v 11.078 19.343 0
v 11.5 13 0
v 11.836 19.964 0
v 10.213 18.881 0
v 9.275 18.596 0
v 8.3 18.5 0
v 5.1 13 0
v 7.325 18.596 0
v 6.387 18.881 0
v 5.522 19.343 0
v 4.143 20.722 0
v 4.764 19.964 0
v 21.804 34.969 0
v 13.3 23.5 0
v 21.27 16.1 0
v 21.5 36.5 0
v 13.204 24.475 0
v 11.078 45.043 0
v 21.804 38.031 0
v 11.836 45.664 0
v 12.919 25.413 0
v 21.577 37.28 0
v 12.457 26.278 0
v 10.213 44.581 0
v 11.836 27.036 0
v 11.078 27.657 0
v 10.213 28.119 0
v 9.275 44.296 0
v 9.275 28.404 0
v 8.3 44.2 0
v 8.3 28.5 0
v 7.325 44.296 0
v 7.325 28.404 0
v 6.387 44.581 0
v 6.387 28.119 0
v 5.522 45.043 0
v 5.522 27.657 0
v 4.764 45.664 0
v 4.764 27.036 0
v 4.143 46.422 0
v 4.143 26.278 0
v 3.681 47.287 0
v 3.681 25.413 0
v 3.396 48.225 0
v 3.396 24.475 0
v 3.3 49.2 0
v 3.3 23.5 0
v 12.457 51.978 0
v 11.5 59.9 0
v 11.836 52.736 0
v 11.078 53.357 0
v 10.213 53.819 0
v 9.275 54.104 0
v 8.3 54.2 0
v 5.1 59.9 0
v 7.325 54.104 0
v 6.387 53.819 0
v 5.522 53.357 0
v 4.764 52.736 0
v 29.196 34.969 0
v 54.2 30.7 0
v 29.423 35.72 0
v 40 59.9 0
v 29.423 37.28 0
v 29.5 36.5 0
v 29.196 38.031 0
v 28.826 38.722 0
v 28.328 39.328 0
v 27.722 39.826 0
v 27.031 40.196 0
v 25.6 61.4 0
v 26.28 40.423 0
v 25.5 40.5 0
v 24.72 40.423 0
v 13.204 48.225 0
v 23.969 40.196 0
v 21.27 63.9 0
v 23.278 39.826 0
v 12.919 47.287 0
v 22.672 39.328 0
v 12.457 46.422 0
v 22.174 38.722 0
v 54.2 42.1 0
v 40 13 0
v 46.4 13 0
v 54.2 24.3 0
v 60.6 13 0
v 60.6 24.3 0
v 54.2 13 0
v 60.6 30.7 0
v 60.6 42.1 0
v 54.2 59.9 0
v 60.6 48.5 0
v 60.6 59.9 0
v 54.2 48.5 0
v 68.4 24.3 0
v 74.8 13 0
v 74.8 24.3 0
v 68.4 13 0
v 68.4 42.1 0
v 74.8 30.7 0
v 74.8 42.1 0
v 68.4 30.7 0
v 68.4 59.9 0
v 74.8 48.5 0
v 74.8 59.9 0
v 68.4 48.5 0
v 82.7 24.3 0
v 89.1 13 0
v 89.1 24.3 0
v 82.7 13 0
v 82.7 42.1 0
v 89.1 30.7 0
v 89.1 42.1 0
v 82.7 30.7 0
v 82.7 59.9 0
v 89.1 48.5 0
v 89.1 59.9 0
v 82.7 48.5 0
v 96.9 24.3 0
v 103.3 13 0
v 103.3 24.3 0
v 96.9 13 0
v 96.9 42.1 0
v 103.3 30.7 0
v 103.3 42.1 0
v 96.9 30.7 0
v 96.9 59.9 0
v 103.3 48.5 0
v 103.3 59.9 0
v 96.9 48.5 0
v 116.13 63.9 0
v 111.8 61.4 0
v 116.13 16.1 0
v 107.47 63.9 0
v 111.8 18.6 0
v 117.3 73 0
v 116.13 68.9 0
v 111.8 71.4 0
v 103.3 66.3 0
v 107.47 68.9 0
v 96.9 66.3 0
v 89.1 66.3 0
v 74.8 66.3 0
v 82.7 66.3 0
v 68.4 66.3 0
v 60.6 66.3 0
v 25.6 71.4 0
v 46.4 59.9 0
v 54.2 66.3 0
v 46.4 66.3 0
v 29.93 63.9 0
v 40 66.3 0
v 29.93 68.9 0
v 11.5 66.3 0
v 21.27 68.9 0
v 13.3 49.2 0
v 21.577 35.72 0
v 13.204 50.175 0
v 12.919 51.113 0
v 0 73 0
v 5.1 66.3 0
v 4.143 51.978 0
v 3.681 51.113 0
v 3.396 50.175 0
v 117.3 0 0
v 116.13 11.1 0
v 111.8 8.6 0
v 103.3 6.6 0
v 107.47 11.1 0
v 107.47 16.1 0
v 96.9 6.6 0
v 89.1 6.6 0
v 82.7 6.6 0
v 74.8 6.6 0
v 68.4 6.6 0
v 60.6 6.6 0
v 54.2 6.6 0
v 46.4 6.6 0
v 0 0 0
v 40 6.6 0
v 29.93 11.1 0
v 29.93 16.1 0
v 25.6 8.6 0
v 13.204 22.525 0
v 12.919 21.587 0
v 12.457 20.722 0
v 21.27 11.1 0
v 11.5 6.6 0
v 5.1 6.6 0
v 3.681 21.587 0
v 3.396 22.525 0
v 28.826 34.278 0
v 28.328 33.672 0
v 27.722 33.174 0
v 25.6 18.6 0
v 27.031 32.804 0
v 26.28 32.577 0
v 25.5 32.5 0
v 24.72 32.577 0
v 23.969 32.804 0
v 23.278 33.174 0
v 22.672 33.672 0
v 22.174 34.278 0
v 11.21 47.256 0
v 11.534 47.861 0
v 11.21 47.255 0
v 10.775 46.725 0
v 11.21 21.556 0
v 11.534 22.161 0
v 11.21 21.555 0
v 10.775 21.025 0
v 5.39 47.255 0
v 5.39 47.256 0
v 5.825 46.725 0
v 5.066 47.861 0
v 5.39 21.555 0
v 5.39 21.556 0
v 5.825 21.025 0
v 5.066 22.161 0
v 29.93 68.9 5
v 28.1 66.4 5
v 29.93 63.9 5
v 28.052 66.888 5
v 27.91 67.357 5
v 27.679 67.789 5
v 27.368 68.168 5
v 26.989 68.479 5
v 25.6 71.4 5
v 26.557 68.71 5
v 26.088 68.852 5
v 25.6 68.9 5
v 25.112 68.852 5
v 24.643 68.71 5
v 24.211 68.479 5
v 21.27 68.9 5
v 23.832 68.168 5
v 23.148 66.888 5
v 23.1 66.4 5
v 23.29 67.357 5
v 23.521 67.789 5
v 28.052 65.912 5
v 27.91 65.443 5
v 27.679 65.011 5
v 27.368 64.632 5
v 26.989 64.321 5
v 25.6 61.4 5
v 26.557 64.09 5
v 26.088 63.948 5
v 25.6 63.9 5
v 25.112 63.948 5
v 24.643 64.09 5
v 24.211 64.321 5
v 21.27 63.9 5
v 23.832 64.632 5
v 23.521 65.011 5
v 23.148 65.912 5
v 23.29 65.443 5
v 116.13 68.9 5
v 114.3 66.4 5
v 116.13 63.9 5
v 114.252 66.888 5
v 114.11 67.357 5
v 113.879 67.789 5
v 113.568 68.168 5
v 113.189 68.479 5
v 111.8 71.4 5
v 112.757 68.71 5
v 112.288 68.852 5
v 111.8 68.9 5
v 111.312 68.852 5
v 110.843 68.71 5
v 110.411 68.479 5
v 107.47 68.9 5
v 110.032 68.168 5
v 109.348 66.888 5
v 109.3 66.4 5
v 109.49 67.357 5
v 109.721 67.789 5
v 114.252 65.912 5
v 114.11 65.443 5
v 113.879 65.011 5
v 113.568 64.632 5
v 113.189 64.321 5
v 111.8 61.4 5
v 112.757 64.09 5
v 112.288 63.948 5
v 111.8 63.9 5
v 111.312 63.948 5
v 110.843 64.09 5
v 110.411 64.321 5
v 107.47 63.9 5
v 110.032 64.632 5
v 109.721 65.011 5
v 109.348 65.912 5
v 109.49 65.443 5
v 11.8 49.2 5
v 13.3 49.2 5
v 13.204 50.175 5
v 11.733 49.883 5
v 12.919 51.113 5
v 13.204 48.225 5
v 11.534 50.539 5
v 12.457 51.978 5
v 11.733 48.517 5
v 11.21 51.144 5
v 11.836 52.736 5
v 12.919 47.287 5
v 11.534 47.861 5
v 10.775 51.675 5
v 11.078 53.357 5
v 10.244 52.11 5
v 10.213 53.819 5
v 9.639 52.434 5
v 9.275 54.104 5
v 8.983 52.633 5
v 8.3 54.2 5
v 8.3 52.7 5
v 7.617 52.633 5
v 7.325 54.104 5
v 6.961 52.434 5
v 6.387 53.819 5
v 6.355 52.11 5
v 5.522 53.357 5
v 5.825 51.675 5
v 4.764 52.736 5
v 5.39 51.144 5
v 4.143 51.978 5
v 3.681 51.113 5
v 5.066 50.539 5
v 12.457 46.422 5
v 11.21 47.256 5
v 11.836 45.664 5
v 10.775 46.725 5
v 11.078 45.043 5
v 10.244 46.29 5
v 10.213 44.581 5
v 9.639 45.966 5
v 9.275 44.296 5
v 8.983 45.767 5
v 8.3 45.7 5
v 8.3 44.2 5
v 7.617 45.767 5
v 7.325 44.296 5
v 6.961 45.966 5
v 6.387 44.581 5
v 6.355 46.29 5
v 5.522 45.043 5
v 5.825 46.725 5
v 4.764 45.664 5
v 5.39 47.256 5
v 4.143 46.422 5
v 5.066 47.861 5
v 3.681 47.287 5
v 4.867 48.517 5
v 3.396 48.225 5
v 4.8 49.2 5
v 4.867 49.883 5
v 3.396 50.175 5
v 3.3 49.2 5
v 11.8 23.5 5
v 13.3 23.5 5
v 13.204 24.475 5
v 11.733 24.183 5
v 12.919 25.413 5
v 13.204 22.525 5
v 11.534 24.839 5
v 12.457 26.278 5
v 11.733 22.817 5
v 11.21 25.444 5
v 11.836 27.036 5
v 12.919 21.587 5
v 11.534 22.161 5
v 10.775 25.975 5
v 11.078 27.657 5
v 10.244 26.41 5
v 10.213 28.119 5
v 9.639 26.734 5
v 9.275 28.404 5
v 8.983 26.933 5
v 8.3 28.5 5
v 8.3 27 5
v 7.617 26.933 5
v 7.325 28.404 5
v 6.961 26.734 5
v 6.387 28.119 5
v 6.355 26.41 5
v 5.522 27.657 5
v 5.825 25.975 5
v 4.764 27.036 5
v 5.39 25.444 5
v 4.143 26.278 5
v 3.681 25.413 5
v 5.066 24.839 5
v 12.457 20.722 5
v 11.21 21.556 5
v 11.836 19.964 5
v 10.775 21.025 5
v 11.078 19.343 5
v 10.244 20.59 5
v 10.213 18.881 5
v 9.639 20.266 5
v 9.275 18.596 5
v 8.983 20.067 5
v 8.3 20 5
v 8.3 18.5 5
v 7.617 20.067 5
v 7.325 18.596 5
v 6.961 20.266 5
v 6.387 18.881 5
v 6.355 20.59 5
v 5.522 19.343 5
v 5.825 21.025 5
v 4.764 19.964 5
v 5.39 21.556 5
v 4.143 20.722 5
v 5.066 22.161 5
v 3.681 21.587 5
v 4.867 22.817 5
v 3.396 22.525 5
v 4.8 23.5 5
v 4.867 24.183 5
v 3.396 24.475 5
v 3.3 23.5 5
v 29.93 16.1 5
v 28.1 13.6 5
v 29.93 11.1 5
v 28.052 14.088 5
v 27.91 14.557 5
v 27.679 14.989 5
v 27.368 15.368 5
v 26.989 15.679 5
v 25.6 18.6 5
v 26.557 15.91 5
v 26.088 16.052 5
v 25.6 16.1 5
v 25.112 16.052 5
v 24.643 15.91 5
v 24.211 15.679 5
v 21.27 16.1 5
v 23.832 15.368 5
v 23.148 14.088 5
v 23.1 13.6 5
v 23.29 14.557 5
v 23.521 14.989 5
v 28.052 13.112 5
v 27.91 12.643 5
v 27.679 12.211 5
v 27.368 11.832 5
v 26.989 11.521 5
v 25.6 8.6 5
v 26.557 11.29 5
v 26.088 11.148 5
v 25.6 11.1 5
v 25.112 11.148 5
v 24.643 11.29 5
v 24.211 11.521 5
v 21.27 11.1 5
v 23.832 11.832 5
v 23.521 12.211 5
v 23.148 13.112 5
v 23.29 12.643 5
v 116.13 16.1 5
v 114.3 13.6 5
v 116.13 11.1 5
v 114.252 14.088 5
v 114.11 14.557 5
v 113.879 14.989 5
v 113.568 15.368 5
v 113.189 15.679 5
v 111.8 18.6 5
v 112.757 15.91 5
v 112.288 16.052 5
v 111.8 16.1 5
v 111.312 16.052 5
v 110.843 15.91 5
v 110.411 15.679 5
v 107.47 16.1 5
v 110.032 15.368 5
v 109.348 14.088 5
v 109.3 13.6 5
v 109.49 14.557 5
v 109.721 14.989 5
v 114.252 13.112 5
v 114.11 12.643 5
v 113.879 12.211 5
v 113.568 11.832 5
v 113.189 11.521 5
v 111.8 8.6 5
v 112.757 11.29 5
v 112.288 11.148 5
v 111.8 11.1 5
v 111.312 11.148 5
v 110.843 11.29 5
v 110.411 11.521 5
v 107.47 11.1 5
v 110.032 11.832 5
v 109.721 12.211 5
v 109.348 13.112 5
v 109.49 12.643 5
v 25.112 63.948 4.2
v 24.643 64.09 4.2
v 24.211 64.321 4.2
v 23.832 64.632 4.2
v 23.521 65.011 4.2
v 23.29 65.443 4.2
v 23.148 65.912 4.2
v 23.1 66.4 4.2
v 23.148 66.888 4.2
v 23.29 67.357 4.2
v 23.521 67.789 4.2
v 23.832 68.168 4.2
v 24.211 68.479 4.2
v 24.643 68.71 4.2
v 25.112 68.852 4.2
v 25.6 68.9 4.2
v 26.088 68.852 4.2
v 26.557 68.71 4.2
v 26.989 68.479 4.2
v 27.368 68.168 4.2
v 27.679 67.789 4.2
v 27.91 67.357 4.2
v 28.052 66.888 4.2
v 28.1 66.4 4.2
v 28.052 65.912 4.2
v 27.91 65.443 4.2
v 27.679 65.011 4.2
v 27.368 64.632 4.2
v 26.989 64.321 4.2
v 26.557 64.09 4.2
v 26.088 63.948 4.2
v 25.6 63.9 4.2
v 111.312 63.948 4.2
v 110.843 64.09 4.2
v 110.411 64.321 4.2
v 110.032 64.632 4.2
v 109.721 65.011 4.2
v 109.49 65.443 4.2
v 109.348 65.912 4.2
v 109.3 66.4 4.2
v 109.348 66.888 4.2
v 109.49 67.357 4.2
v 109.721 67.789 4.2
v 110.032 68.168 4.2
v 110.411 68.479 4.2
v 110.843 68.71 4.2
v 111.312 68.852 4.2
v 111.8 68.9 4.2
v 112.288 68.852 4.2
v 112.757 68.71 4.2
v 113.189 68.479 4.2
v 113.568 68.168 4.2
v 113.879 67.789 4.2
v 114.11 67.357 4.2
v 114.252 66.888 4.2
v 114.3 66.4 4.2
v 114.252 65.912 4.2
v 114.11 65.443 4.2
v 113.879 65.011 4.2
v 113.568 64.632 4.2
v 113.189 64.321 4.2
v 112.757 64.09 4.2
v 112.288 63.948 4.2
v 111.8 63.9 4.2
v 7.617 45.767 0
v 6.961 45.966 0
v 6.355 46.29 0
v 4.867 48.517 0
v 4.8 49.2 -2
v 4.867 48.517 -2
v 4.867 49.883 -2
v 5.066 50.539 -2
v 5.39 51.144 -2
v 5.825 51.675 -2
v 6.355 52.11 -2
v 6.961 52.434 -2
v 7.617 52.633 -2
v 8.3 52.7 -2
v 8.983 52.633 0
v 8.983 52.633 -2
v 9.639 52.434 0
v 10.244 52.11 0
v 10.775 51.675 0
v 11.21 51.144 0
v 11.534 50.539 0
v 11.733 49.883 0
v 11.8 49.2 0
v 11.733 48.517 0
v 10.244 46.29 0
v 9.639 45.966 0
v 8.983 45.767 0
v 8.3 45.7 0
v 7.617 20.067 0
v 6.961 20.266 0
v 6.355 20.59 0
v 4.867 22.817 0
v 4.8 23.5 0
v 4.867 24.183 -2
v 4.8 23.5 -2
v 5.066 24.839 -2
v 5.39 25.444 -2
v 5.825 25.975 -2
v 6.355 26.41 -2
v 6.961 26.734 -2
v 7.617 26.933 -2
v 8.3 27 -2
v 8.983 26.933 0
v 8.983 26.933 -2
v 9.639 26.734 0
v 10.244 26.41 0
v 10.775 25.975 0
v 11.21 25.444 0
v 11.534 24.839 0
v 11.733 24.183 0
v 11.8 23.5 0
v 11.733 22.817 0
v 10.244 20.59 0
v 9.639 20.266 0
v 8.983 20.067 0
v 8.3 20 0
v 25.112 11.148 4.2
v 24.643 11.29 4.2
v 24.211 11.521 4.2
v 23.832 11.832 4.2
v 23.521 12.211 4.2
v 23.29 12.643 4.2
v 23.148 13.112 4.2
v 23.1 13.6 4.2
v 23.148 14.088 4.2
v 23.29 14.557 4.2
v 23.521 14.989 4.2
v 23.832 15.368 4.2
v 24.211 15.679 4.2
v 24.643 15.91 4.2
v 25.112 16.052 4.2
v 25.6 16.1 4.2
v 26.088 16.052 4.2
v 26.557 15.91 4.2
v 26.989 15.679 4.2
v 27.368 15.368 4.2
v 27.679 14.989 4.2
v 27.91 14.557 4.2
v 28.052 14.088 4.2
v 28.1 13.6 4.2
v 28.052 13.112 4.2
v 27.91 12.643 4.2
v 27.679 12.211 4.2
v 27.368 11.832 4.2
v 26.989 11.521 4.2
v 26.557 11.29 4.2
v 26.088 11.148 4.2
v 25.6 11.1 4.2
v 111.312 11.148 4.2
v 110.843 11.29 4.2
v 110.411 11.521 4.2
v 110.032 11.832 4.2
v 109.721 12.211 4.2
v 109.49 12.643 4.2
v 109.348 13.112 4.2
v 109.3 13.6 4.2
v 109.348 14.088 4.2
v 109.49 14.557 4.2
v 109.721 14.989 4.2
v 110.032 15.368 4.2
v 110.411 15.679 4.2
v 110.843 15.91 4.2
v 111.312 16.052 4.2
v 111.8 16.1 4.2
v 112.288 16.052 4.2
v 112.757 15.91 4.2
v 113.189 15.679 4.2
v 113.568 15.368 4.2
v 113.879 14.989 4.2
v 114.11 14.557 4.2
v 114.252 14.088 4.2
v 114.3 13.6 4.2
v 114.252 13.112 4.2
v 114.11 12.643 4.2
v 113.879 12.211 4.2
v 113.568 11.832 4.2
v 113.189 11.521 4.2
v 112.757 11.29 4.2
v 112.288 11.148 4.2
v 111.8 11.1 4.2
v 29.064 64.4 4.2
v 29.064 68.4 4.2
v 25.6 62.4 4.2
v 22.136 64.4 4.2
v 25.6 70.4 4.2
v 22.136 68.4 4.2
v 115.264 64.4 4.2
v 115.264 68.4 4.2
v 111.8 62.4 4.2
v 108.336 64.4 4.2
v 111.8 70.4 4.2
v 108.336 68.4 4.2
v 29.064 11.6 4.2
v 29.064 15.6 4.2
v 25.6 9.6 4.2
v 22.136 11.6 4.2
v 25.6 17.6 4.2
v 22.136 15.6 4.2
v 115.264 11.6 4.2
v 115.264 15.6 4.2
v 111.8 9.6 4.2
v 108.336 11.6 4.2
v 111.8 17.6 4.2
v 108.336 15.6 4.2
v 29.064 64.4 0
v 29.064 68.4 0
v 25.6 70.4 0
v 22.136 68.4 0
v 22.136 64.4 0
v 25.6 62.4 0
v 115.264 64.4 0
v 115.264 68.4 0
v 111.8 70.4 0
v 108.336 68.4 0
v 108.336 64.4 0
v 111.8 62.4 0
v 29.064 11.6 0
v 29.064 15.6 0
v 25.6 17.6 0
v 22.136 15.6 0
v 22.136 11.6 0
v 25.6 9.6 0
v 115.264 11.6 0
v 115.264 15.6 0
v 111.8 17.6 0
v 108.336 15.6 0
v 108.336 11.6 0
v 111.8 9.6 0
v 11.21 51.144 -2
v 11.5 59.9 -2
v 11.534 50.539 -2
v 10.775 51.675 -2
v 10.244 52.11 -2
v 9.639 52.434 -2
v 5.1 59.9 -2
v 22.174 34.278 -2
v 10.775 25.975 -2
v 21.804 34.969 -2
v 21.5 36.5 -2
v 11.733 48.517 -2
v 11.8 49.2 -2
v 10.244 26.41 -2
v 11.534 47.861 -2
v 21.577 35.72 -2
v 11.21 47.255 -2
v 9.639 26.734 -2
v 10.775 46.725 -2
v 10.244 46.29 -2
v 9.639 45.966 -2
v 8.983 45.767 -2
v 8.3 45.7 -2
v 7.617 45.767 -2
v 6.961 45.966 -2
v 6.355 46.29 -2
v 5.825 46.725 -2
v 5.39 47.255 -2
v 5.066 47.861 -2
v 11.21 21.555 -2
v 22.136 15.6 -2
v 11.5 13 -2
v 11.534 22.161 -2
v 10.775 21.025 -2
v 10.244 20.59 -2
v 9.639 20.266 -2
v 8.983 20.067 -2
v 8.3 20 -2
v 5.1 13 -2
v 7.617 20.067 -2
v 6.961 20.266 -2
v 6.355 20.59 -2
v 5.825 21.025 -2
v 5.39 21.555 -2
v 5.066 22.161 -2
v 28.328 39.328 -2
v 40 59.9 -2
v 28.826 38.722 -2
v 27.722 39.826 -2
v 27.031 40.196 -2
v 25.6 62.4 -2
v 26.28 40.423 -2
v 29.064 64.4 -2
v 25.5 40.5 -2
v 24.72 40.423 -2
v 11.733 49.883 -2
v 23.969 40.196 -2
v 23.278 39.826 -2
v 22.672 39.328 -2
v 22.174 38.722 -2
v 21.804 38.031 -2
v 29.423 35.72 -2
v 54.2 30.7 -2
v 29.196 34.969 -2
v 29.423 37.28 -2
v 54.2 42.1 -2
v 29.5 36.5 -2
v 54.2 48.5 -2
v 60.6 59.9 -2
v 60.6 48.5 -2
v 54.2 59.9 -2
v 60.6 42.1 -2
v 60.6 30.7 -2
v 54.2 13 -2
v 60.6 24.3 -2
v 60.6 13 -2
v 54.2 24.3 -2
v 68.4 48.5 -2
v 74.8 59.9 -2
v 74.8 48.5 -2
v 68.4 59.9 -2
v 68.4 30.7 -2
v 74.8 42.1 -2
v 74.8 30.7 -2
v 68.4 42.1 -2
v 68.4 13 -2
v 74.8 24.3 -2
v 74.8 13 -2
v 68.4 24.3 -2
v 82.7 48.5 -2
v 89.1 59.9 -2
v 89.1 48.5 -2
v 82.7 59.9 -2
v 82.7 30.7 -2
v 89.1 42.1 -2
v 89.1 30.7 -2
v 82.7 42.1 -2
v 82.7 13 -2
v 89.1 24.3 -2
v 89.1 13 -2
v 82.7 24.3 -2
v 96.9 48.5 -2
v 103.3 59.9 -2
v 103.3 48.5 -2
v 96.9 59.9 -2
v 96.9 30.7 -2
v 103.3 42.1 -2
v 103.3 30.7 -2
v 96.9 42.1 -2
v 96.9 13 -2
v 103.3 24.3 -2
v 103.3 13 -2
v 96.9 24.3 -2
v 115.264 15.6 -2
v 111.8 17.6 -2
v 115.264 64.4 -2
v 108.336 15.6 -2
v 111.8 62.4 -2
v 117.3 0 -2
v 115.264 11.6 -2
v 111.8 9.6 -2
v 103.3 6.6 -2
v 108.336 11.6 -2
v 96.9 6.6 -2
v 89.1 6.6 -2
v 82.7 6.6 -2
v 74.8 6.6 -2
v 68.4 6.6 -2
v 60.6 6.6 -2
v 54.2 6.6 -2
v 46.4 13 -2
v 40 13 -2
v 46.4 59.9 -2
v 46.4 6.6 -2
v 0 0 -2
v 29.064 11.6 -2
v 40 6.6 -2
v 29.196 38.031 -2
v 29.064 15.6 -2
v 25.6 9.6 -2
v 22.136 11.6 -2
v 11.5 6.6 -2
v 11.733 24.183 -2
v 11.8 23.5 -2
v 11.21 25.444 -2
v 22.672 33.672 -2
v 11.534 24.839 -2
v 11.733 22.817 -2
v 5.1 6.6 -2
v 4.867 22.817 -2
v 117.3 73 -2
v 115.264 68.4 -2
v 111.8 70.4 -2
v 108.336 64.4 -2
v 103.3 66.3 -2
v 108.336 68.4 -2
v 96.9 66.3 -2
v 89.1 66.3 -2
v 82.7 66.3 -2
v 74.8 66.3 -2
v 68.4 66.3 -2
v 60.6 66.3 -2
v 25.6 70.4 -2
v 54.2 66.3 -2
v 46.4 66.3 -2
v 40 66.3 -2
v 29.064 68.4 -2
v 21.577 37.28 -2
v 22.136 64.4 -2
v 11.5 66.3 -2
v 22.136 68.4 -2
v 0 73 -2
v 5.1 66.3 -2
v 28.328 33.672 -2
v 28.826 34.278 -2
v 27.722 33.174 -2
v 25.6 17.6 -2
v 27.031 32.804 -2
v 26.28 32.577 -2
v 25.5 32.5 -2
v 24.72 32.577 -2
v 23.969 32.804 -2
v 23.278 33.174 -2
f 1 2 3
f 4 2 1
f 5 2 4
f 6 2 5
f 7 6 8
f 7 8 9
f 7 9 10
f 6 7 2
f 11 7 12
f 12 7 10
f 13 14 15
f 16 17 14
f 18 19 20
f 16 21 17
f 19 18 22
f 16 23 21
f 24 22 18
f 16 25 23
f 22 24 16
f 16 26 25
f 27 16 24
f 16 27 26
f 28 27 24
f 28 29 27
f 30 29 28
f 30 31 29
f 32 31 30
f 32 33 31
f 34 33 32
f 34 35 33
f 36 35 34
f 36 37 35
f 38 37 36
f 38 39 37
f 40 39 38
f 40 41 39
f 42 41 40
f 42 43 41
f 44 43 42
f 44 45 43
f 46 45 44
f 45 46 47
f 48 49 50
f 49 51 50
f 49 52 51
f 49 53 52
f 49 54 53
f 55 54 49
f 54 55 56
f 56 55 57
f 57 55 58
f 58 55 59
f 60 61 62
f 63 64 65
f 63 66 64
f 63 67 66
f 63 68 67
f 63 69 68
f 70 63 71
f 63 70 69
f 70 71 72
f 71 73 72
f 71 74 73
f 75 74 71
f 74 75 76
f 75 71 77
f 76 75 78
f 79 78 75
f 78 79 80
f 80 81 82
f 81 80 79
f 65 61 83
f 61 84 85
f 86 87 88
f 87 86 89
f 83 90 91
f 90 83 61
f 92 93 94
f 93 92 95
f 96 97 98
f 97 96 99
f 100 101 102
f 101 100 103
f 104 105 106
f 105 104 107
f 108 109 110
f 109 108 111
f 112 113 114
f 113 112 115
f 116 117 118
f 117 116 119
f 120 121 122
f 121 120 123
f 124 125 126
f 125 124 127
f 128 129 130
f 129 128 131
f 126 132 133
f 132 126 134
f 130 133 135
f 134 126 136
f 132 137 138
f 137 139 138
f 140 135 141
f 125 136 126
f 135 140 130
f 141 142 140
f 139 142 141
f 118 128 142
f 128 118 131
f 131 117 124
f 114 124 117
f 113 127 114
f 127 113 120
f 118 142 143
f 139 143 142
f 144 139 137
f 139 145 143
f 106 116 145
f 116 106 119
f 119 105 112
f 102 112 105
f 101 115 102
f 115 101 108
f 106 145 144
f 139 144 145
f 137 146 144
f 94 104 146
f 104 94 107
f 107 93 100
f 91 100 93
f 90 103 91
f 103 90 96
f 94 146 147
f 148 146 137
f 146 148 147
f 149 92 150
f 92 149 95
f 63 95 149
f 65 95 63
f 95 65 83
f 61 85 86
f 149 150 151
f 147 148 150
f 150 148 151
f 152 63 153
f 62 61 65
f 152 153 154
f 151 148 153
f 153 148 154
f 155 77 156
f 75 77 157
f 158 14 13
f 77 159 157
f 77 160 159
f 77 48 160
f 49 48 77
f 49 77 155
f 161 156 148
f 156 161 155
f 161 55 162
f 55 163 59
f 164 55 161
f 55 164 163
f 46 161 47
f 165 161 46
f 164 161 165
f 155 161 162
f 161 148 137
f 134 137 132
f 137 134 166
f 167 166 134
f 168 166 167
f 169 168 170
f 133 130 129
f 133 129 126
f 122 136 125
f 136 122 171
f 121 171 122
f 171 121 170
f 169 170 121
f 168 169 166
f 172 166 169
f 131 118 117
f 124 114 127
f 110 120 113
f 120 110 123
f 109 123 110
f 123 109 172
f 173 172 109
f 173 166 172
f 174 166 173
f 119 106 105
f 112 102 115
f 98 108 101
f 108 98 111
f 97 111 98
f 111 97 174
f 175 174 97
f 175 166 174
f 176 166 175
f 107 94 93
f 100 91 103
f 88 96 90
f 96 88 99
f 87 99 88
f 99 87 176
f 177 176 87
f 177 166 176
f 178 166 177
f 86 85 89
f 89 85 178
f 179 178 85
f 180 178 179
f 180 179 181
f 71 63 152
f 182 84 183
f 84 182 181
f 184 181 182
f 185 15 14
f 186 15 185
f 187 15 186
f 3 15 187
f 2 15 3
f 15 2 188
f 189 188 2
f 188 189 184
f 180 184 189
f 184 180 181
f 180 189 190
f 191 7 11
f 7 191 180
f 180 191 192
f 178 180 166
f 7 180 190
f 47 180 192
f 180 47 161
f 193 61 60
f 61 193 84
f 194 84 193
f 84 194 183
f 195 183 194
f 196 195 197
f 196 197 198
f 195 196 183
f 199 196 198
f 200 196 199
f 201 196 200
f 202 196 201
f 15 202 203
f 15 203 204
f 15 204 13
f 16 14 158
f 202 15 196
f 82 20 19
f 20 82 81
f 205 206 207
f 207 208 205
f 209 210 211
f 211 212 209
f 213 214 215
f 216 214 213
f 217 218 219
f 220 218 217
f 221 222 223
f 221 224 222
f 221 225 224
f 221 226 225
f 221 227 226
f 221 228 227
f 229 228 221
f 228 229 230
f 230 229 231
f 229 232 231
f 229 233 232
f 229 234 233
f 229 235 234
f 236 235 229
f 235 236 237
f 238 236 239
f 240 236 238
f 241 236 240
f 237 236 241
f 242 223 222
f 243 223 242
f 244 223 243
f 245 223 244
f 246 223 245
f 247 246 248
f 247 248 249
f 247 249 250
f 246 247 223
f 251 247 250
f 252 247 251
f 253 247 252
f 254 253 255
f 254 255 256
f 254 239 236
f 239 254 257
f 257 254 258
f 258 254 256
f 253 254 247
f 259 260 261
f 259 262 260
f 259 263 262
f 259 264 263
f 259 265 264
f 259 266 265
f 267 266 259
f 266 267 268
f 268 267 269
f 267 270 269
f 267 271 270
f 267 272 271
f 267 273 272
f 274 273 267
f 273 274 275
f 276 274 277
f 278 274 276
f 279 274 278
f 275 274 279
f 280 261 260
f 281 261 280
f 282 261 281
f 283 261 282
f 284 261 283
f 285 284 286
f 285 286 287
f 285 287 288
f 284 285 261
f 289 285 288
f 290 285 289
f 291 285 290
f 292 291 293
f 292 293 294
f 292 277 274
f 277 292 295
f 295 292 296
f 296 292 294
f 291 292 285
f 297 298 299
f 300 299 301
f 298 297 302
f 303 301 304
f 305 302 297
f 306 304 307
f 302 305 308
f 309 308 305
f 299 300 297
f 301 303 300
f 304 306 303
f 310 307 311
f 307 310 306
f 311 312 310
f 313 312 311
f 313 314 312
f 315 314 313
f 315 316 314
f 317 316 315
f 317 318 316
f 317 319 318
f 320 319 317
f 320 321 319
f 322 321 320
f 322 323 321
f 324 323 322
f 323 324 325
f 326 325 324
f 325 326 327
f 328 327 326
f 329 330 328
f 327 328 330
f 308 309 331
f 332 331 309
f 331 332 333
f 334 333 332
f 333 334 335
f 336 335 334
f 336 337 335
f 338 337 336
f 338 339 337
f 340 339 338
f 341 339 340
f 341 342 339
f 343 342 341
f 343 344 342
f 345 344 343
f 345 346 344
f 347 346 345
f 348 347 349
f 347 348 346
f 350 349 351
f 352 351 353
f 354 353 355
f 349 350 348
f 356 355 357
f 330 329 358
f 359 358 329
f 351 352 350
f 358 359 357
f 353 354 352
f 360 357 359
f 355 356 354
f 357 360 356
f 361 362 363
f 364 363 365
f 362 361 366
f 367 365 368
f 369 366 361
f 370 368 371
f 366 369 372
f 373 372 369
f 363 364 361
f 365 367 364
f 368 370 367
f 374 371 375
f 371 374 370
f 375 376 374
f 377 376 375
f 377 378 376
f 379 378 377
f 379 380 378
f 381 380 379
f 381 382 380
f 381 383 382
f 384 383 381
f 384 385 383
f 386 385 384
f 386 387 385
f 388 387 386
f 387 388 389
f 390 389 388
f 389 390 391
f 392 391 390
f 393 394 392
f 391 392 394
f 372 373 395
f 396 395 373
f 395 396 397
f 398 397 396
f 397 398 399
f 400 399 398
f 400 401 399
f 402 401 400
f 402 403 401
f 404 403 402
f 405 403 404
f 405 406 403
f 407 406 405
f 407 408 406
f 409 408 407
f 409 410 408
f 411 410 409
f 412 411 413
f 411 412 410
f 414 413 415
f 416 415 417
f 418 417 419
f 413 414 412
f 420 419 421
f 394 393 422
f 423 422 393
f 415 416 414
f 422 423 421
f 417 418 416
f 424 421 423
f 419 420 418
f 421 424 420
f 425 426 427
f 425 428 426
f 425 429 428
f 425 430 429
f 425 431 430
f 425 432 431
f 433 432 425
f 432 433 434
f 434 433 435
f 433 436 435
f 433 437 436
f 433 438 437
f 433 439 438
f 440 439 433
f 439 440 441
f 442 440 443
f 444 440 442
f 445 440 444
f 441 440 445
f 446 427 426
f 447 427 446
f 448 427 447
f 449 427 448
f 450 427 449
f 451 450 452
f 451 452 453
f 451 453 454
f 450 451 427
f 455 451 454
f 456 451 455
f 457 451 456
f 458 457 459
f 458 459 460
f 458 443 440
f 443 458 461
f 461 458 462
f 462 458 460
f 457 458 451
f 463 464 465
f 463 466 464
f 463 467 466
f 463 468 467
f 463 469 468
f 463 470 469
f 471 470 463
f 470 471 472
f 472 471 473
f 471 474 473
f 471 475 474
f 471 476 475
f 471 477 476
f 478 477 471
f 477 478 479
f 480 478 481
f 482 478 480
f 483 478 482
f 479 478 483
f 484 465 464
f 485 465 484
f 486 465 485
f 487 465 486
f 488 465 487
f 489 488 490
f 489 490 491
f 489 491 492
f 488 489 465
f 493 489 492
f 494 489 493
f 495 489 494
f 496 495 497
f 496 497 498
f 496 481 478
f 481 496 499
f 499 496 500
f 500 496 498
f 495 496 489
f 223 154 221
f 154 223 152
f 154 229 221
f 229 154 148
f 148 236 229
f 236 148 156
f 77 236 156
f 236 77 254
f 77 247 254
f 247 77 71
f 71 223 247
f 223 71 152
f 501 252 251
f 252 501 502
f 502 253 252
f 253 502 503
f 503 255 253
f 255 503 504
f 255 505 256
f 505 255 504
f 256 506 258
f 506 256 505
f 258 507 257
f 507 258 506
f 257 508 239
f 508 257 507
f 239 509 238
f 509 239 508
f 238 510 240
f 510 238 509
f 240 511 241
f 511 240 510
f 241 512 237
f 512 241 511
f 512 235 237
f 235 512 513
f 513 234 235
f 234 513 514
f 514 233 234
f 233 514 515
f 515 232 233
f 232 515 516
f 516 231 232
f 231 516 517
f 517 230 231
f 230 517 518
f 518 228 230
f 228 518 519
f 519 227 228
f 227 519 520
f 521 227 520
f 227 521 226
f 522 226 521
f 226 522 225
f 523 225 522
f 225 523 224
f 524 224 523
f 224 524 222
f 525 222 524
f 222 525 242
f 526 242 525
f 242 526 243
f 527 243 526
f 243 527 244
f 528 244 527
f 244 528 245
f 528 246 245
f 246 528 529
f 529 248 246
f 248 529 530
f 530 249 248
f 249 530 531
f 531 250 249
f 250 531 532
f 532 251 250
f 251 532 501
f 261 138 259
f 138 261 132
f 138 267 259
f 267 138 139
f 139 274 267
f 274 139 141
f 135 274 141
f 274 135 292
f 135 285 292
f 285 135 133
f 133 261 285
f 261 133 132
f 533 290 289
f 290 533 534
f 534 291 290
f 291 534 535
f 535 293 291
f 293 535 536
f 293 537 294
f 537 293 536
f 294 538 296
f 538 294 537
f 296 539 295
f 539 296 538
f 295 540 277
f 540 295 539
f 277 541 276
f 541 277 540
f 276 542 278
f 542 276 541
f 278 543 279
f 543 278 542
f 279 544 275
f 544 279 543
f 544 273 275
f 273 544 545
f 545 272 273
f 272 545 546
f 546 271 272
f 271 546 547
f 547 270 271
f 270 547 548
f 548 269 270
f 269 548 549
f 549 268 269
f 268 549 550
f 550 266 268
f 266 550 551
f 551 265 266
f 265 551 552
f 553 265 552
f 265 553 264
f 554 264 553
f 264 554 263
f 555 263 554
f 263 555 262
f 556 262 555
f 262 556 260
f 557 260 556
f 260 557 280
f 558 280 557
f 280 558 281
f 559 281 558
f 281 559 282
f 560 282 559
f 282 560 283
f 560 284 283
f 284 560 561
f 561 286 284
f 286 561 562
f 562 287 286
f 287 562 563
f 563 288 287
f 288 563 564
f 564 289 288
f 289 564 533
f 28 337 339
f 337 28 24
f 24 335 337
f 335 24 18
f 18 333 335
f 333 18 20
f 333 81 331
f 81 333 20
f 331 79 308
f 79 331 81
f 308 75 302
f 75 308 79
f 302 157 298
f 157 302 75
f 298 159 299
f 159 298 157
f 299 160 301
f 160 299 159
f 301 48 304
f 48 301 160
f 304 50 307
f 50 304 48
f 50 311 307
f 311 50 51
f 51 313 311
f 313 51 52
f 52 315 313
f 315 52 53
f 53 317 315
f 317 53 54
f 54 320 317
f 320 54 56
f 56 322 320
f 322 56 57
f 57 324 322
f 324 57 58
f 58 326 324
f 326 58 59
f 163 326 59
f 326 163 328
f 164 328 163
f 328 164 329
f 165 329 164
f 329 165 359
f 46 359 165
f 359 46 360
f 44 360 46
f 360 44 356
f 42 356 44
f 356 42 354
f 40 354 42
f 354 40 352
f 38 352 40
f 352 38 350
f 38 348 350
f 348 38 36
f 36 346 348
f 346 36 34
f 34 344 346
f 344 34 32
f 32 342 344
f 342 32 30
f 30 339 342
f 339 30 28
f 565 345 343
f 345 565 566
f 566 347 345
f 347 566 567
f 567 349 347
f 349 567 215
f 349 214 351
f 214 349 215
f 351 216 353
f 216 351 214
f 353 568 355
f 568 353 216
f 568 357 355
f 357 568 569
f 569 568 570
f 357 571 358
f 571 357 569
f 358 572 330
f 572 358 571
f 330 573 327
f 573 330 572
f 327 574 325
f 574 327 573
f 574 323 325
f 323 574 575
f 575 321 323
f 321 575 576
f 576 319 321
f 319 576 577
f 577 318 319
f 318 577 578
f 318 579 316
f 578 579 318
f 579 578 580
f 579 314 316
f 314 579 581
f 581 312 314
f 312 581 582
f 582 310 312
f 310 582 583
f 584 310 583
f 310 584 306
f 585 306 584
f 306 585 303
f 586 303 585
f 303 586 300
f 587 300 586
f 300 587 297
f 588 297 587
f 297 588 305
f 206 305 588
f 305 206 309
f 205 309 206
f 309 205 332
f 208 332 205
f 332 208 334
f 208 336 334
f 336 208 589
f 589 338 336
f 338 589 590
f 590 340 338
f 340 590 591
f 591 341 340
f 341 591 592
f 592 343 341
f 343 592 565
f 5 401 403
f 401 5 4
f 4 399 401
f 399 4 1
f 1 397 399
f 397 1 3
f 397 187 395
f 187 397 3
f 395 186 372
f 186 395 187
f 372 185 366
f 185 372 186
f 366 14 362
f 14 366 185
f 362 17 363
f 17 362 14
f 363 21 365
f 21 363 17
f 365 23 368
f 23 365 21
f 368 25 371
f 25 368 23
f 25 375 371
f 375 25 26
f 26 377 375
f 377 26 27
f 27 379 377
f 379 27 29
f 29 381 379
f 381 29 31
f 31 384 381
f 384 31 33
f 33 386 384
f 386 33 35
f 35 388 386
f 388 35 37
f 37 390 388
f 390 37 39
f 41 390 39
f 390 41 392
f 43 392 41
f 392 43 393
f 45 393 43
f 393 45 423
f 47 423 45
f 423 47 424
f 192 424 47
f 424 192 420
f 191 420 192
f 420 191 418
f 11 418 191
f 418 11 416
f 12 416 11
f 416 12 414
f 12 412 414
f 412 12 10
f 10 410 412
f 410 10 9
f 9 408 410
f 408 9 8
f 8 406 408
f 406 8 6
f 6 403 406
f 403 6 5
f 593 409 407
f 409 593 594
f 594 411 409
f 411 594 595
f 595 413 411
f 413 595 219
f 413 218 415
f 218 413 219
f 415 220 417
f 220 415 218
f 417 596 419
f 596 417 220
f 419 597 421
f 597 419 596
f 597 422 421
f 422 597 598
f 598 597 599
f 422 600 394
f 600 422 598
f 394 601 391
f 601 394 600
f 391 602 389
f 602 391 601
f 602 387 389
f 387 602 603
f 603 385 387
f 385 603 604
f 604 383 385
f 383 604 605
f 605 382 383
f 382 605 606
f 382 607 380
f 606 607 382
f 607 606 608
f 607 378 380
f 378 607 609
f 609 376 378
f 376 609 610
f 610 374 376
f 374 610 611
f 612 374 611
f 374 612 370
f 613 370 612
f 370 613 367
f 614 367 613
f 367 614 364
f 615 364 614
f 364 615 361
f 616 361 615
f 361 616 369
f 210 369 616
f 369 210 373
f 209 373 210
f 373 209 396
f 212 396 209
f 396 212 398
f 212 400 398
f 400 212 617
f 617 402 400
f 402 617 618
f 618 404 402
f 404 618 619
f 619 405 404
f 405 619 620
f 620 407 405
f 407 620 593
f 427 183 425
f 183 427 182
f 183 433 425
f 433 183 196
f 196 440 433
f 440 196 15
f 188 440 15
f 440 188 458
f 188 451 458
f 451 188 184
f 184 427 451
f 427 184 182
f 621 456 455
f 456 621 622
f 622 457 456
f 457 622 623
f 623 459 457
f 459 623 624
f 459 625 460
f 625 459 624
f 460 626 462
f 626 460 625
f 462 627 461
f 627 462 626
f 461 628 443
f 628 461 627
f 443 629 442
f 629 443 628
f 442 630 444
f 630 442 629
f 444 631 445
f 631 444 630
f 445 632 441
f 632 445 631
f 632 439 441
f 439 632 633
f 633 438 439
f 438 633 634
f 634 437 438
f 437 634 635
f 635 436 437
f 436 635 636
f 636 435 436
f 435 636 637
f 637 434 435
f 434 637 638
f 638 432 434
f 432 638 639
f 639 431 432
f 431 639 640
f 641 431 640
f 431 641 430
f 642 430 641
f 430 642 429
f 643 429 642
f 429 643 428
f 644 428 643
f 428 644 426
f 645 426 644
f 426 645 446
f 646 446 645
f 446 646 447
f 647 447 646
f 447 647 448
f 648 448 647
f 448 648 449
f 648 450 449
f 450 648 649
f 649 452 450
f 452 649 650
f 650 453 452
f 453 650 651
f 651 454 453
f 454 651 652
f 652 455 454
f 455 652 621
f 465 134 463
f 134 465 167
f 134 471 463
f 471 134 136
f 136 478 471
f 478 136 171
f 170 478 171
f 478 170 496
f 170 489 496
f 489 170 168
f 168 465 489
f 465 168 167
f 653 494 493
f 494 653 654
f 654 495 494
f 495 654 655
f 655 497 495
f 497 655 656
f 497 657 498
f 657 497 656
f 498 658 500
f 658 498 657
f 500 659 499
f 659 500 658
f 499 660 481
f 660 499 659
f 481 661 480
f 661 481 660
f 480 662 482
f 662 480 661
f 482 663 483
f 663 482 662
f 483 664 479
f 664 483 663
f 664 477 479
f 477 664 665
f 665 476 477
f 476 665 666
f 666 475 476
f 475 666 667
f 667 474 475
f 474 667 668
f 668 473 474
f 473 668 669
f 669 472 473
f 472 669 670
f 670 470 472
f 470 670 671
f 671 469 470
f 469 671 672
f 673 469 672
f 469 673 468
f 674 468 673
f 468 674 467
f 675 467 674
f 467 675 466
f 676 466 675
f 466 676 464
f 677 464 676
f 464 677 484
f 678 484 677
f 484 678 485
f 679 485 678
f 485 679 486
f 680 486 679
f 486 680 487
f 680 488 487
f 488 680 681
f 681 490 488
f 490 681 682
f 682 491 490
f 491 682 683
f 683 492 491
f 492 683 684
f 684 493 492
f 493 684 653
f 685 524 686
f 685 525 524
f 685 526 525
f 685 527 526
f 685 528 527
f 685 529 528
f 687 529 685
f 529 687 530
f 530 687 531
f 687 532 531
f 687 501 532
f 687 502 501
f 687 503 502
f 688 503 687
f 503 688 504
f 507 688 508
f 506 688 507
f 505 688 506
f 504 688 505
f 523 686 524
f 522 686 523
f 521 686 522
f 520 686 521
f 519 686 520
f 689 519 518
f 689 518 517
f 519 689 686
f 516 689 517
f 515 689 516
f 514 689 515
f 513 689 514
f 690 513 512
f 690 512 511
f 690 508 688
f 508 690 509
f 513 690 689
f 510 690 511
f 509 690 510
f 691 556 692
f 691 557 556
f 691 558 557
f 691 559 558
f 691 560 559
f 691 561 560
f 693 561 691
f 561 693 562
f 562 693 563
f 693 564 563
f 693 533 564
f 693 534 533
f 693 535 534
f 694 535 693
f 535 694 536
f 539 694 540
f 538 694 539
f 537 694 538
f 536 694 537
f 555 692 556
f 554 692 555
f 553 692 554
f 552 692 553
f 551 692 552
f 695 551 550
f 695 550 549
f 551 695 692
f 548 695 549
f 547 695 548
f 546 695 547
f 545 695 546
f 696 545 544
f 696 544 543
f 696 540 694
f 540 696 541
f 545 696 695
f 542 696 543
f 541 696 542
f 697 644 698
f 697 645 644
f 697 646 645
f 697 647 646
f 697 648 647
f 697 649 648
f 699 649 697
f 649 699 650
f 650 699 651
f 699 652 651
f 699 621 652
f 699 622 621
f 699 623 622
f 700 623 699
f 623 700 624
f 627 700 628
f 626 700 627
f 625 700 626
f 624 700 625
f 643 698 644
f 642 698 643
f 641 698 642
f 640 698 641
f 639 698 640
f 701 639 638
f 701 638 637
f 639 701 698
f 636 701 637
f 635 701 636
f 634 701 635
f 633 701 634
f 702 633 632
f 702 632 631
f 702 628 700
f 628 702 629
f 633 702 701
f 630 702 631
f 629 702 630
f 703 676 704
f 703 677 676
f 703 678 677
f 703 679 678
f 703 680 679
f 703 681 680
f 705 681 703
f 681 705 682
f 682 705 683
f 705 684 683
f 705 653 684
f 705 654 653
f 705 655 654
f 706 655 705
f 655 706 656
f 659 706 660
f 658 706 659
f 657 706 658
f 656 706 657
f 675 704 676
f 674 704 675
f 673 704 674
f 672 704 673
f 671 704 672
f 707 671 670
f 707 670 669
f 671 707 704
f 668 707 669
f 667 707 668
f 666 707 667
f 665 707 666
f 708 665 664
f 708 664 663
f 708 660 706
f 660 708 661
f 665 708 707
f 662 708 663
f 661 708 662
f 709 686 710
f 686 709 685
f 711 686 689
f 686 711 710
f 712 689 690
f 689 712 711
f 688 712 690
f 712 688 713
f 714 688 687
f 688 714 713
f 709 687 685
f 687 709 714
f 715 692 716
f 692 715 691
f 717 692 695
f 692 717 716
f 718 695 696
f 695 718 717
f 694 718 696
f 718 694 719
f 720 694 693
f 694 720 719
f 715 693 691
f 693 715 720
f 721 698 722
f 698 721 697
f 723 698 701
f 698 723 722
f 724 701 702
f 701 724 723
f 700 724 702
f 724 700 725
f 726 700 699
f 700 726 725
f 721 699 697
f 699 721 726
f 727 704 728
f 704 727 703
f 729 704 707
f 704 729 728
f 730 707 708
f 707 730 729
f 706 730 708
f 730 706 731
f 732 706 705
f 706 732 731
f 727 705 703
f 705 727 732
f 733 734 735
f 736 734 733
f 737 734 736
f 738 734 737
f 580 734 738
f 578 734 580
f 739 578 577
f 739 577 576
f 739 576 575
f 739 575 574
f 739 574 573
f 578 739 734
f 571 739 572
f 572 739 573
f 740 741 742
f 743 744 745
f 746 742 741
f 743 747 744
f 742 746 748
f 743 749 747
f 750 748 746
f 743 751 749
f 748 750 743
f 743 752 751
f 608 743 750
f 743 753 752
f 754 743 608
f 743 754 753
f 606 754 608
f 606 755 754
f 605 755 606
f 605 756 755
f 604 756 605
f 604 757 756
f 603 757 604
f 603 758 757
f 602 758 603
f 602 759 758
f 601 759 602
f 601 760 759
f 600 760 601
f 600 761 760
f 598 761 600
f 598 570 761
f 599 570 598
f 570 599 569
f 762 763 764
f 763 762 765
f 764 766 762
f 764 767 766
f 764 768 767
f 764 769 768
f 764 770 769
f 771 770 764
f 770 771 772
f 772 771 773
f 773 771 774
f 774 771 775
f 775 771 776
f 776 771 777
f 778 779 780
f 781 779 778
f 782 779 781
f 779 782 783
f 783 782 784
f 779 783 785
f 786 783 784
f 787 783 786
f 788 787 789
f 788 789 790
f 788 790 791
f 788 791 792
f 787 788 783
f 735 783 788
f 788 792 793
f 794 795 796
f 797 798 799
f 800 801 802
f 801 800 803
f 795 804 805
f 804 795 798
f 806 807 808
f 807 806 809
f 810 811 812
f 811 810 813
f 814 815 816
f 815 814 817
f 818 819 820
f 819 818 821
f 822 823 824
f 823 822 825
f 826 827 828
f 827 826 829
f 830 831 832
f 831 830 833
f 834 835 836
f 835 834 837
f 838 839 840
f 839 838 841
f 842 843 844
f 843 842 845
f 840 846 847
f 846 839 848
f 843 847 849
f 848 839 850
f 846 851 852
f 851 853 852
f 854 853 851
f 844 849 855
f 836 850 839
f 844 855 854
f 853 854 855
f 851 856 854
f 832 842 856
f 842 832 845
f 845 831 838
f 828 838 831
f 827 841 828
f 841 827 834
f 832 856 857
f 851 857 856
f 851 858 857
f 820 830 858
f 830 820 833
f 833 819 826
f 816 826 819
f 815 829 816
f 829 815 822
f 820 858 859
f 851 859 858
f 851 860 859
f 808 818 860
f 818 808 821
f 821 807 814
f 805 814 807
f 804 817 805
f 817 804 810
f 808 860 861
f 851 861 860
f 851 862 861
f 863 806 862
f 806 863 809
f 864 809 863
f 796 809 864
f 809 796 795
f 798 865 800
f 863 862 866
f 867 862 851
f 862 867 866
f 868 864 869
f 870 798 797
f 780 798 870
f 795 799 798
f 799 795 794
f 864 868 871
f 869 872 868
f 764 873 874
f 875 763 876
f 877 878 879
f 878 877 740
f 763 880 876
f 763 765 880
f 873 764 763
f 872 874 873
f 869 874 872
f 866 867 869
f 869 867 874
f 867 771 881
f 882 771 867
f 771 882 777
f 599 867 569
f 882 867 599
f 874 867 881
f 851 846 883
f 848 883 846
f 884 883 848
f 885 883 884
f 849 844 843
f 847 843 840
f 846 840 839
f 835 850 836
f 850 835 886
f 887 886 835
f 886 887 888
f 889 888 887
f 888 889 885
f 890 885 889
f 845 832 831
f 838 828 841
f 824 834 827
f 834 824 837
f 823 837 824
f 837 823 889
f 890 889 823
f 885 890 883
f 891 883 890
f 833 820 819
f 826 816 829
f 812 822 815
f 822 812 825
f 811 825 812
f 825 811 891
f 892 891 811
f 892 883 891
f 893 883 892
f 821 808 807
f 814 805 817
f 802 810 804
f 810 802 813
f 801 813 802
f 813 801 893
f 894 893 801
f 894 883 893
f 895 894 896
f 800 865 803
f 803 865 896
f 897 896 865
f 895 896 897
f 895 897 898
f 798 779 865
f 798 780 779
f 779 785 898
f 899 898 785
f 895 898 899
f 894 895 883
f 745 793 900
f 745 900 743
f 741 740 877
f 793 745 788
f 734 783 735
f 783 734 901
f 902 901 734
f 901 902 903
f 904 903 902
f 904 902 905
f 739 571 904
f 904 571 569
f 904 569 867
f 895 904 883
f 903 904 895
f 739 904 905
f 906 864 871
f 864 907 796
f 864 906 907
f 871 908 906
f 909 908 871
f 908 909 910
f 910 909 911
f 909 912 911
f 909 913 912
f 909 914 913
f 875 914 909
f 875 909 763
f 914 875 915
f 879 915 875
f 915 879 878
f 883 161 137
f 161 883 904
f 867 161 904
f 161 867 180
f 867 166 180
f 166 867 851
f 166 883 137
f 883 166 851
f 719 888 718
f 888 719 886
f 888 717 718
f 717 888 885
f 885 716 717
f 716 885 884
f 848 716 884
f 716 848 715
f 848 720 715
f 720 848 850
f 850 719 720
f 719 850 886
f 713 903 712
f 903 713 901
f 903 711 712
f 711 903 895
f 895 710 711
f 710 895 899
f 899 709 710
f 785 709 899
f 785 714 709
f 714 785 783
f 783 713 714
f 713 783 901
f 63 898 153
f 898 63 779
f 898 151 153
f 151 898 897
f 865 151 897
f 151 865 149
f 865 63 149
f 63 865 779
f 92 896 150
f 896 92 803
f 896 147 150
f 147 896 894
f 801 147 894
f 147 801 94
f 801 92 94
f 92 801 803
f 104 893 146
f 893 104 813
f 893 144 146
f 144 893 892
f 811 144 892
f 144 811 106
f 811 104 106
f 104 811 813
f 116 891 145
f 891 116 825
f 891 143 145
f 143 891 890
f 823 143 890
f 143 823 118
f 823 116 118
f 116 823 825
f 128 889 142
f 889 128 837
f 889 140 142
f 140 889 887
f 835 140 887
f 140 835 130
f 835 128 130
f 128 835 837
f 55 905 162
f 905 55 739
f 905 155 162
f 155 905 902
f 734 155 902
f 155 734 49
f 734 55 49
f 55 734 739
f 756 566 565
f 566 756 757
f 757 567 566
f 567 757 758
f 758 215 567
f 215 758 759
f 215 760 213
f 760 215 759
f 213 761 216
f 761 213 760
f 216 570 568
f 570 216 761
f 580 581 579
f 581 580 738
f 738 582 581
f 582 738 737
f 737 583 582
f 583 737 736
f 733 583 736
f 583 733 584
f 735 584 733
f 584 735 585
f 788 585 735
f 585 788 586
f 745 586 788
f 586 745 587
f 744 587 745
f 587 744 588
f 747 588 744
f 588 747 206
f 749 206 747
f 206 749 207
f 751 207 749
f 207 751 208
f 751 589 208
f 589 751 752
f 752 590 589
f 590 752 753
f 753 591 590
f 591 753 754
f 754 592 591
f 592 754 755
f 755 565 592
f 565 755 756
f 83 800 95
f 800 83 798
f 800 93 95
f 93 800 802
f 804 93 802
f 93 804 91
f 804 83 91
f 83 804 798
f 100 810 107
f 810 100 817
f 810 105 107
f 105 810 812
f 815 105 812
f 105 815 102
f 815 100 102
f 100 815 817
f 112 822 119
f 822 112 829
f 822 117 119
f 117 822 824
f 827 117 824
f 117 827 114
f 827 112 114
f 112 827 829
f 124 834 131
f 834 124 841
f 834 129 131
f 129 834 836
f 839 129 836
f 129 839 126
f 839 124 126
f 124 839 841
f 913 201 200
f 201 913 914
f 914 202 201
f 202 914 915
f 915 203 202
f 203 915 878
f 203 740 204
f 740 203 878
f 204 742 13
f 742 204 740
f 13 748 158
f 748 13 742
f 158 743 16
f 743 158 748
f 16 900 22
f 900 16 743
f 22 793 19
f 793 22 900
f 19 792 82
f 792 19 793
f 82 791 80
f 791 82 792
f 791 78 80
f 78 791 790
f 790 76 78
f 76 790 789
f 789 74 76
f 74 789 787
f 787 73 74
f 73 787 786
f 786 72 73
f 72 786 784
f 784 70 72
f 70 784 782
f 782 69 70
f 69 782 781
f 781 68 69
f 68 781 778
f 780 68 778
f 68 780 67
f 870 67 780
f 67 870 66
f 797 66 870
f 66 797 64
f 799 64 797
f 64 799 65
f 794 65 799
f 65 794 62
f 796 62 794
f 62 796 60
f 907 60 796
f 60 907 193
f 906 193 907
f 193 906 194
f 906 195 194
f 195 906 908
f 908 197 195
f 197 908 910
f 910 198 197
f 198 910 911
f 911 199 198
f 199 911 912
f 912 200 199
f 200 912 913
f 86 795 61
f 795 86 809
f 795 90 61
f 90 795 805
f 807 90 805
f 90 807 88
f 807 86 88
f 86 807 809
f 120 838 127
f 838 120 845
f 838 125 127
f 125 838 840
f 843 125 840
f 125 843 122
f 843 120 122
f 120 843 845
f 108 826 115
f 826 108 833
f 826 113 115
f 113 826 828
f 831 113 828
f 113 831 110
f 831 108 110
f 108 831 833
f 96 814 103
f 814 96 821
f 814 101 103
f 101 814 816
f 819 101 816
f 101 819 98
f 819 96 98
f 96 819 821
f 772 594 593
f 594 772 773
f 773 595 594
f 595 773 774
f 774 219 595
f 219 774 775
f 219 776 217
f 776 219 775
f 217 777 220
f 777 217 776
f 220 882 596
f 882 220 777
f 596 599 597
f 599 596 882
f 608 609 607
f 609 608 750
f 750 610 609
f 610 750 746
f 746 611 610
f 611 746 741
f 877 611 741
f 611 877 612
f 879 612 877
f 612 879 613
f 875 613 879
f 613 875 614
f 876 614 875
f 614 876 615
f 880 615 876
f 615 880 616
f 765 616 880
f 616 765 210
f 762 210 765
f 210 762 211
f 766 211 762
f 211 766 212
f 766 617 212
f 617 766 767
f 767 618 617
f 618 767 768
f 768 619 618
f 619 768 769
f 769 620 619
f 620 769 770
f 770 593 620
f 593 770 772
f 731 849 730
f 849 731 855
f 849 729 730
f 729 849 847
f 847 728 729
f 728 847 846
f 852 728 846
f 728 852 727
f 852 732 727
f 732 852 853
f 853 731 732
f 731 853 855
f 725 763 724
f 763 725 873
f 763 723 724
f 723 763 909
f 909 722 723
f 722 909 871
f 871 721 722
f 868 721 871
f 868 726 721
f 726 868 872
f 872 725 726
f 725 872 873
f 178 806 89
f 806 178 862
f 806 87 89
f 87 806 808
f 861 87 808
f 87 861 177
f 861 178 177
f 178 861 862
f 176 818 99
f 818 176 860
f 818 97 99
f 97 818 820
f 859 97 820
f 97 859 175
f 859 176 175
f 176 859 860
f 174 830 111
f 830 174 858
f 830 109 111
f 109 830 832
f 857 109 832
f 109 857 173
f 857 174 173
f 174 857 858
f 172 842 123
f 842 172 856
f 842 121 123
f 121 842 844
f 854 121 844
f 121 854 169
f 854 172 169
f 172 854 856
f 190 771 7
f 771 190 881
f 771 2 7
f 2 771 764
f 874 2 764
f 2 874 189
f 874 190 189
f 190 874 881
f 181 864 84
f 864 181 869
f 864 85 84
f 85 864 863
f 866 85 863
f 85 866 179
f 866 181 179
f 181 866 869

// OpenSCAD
$fn = 32;

module hexagon(point_to_point=4) {
    rotate(30, [0, 0, 1])
        circle(point_to_point, $fn=6);
}

module Post(Width=5) {
    difference() {
        hexagon(Width);
        circle(2.5); // 5mm diamter
    }
}

module front_panel_plate() {
    union() {

        PlateThickness = 2;
        
        AltCols = [8.3, 43.2];
        LEDRows = [23.5, 49.2];
        MountingCols = [25.6, 111.8];
        MountingRows = [13.6, 66.4];

        difference() {
            PostHeight = 5;
            linear_extrude(PostHeight)
                union() {
                    // Mounting Posts
                    for (MountingCol = MountingCols) {
                        for (MountingRow = MountingRows) {
                            translate([MountingCol, MountingRow])
                                Post();
                        }
                    }
                    
                    // LED Posts
                    for (LEDRow = LEDRows) {
                        translate([AltCols[0], LEDRow])
                            difference() {
                                circle(5); // 10mm diameter
                                circle(3.5); // 7mm diameter
                            }
                    }
                }
                
                
            // Cut Out in the Mounting Posts for the Standoffs
            StandoffDepth = 4.2;
            linear_extrude(StandoffDepth)
                union() {
                    for (MountingCol = MountingCols) {
                        for (MountingRow = MountingRows) {
                            translate([MountingCol, MountingRow])
                                Post(4);
                        }
                    }
                }
        }
        
        translate([0, 0, -PlateThickness])
            linear_extrude(PlateThickness)
                difference() {

                    // Main Plate
                    TotalWidth = 73;
                    TotalLength = 117.3;
                    square([TotalLength, TotalWidth]);
                    
                    union() {

                        // Mounting Holes
                        for (MountingCol = MountingCols) {
                            for (MountingRow = MountingRows) {
                                translate([MountingCol, MountingRow])
                                    hexagon();
                            }
                        }

                        // Rotary Encoder Cut-Out
                        translate([25.5, 36.5])
                            circle(4); // 8mm  Diameter
                        
                        // Main Keypad Matrix
                        ButtonHole = 6.4;
                        rows = [63.1, 45.3, 27.5, 9.8];
                        cols = [57.4, 71.6, 85.9, 100.1];
                        for (row = rows) {
                            for (col = cols) {
                                translate([col, row])
                                    square(ButtonHole, center=true);
                            }
                        }

                        // Secondary Buttons
                        
                        for (AltCol = AltCols) {
                            translate([AltCol, rows[0]])
                                square(ButtonHole, center=true);
                            translate([AltCol, rows[3]])
                                square(ButtonHole, center=true);
                        }

                        
                        // LED Cut-Outs
                        LEDHole = 3.5;
                        for (LEDRow = LEDRows) {
                            translate([AltCols[0], LEDRow])
                                circle(LEDHole);
                        }
                    }
                }
    }
}

front_panel_plate();
